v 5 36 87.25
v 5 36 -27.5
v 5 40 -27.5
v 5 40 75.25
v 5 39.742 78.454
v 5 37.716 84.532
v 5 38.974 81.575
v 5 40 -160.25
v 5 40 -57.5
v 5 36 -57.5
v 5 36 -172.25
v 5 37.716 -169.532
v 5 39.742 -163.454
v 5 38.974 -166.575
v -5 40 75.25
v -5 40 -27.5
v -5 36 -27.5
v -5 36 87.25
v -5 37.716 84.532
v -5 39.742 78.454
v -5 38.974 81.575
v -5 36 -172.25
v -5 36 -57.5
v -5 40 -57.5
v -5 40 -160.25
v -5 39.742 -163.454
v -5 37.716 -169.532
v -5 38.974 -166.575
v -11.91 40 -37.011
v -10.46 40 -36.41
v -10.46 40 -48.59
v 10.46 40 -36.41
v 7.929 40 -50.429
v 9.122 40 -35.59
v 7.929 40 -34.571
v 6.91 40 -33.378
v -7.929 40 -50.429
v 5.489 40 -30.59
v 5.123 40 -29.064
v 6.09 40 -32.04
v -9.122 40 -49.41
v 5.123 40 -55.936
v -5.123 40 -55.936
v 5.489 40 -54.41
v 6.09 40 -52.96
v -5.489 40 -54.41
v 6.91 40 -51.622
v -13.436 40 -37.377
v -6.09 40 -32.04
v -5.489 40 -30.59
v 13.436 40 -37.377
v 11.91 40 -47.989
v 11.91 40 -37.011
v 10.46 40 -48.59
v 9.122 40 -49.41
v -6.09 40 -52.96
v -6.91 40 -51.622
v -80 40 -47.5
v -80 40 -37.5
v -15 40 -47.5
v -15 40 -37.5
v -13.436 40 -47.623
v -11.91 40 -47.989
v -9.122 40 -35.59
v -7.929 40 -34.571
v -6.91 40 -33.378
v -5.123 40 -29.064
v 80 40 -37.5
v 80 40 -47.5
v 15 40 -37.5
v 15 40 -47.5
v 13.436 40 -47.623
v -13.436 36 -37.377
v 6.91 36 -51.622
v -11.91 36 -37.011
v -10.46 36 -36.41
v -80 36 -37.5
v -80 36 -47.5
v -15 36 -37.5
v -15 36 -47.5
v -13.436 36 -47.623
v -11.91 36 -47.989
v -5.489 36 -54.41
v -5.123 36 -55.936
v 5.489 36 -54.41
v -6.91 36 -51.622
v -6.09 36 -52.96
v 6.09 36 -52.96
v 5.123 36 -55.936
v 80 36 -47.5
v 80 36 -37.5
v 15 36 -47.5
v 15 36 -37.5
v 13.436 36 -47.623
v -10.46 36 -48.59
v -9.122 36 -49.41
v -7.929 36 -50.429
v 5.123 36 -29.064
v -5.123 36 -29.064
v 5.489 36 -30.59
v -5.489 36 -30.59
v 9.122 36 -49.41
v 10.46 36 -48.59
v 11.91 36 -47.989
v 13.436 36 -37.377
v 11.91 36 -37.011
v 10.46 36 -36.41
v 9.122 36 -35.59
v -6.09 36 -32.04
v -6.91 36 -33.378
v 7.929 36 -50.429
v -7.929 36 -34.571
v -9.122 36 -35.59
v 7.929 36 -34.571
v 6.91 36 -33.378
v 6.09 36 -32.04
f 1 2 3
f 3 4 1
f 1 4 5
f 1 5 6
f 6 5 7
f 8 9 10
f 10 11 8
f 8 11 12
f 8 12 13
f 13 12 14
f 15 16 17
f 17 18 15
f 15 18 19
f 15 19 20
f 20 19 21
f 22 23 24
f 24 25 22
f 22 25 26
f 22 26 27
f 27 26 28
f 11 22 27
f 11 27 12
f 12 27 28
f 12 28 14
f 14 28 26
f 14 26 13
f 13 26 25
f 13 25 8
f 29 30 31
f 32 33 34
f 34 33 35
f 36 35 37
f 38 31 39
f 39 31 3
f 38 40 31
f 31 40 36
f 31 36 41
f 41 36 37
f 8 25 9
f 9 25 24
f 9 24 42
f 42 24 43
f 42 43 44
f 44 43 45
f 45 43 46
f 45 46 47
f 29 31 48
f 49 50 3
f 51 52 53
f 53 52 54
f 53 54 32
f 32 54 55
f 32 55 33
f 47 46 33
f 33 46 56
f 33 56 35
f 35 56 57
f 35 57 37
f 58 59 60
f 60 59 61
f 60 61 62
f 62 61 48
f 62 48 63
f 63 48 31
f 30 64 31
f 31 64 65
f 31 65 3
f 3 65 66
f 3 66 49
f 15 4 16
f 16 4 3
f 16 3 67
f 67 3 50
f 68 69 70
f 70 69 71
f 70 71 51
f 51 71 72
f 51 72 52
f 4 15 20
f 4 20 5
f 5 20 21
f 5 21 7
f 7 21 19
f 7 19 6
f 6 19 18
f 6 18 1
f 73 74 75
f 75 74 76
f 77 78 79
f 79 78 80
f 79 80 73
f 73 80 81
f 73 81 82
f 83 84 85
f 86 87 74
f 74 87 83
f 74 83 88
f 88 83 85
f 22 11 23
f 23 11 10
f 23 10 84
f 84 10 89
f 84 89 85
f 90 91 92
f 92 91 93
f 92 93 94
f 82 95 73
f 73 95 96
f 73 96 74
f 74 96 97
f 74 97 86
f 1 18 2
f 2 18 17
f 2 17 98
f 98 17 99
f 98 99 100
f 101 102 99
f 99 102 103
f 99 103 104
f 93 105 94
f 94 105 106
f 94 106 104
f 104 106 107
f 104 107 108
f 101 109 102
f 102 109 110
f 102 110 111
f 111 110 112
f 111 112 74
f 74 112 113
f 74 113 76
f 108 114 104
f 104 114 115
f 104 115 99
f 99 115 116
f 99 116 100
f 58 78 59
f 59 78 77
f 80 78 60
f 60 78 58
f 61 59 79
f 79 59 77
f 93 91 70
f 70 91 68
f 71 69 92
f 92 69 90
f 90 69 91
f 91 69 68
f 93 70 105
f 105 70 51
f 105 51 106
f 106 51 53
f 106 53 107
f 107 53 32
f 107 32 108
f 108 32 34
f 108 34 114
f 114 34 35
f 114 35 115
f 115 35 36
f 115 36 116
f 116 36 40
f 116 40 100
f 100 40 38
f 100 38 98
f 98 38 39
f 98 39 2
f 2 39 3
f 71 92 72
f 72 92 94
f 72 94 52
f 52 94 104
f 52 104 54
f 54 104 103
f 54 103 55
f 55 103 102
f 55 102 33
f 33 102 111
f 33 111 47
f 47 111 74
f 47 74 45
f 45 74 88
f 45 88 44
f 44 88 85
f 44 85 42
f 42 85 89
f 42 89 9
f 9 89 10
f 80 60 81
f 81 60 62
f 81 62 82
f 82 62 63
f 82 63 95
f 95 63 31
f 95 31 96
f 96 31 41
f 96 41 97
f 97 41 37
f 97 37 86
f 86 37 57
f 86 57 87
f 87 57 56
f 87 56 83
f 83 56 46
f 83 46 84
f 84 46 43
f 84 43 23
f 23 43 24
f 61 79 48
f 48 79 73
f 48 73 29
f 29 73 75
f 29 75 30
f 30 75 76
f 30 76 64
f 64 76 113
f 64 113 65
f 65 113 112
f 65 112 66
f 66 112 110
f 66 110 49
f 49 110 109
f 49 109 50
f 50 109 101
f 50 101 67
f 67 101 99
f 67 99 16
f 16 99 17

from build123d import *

# Parameters (mm, degrees)
BOSS_EXTRUDE1_DEPTH = 5
SKETCH2_W           = 10
SKETCH2_H           = 4
BOSS_EXTRUDE2_DEPTH = 80
FILLET1_R           = 10


with BuildPart() as part:
    # Sketch1 → Boss-Extrude1 (new, symmetric)
    with BuildSketch(Plane(origin=(0, 0, 0), x_dir=(0, 0, -1), z_dir=(1, 0, 0))):
        with BuildLine():
            Line((-75.25, 40), (160.25, 40))
            ThreePointArc((160.25, 40), (166.57455532, 38.973665961), (172.25, 36))
            Line((172.25, 36), (-87.25, 36))
            ThreePointArc((-87.25, 36), (-81.57455532, 38.973665961), (-75.25, 40))
        make_face()
    extrude(amount=BOSS_EXTRUDE1_DEPTH, both=True)

    # Sketch2 → Boss-Extrude2 (add, symmetric)
    with BuildSketch(Plane(origin=(0, 0, 0), x_dir=(0, 0, -1), z_dir=(1, 0, 0))):
        with Locations((42.5, 38)):
            Rectangle(SKETCH2_W, SKETCH2_H)
    extrude(amount=BOSS_EXTRUDE2_DEPTH, both=True)

    # Fillet1
    fillet1_edges = [part.edges().sort_by_distance(p)[0] for p in [
        (-5, 38, -47.5),
        (-5, 38, -37.5),
        (5, 38, -37.5),
        (5, 38, -47.5),
    ]]
    fillet(fillet1_edges, radius=FILLET1_R)


solid = part.part
